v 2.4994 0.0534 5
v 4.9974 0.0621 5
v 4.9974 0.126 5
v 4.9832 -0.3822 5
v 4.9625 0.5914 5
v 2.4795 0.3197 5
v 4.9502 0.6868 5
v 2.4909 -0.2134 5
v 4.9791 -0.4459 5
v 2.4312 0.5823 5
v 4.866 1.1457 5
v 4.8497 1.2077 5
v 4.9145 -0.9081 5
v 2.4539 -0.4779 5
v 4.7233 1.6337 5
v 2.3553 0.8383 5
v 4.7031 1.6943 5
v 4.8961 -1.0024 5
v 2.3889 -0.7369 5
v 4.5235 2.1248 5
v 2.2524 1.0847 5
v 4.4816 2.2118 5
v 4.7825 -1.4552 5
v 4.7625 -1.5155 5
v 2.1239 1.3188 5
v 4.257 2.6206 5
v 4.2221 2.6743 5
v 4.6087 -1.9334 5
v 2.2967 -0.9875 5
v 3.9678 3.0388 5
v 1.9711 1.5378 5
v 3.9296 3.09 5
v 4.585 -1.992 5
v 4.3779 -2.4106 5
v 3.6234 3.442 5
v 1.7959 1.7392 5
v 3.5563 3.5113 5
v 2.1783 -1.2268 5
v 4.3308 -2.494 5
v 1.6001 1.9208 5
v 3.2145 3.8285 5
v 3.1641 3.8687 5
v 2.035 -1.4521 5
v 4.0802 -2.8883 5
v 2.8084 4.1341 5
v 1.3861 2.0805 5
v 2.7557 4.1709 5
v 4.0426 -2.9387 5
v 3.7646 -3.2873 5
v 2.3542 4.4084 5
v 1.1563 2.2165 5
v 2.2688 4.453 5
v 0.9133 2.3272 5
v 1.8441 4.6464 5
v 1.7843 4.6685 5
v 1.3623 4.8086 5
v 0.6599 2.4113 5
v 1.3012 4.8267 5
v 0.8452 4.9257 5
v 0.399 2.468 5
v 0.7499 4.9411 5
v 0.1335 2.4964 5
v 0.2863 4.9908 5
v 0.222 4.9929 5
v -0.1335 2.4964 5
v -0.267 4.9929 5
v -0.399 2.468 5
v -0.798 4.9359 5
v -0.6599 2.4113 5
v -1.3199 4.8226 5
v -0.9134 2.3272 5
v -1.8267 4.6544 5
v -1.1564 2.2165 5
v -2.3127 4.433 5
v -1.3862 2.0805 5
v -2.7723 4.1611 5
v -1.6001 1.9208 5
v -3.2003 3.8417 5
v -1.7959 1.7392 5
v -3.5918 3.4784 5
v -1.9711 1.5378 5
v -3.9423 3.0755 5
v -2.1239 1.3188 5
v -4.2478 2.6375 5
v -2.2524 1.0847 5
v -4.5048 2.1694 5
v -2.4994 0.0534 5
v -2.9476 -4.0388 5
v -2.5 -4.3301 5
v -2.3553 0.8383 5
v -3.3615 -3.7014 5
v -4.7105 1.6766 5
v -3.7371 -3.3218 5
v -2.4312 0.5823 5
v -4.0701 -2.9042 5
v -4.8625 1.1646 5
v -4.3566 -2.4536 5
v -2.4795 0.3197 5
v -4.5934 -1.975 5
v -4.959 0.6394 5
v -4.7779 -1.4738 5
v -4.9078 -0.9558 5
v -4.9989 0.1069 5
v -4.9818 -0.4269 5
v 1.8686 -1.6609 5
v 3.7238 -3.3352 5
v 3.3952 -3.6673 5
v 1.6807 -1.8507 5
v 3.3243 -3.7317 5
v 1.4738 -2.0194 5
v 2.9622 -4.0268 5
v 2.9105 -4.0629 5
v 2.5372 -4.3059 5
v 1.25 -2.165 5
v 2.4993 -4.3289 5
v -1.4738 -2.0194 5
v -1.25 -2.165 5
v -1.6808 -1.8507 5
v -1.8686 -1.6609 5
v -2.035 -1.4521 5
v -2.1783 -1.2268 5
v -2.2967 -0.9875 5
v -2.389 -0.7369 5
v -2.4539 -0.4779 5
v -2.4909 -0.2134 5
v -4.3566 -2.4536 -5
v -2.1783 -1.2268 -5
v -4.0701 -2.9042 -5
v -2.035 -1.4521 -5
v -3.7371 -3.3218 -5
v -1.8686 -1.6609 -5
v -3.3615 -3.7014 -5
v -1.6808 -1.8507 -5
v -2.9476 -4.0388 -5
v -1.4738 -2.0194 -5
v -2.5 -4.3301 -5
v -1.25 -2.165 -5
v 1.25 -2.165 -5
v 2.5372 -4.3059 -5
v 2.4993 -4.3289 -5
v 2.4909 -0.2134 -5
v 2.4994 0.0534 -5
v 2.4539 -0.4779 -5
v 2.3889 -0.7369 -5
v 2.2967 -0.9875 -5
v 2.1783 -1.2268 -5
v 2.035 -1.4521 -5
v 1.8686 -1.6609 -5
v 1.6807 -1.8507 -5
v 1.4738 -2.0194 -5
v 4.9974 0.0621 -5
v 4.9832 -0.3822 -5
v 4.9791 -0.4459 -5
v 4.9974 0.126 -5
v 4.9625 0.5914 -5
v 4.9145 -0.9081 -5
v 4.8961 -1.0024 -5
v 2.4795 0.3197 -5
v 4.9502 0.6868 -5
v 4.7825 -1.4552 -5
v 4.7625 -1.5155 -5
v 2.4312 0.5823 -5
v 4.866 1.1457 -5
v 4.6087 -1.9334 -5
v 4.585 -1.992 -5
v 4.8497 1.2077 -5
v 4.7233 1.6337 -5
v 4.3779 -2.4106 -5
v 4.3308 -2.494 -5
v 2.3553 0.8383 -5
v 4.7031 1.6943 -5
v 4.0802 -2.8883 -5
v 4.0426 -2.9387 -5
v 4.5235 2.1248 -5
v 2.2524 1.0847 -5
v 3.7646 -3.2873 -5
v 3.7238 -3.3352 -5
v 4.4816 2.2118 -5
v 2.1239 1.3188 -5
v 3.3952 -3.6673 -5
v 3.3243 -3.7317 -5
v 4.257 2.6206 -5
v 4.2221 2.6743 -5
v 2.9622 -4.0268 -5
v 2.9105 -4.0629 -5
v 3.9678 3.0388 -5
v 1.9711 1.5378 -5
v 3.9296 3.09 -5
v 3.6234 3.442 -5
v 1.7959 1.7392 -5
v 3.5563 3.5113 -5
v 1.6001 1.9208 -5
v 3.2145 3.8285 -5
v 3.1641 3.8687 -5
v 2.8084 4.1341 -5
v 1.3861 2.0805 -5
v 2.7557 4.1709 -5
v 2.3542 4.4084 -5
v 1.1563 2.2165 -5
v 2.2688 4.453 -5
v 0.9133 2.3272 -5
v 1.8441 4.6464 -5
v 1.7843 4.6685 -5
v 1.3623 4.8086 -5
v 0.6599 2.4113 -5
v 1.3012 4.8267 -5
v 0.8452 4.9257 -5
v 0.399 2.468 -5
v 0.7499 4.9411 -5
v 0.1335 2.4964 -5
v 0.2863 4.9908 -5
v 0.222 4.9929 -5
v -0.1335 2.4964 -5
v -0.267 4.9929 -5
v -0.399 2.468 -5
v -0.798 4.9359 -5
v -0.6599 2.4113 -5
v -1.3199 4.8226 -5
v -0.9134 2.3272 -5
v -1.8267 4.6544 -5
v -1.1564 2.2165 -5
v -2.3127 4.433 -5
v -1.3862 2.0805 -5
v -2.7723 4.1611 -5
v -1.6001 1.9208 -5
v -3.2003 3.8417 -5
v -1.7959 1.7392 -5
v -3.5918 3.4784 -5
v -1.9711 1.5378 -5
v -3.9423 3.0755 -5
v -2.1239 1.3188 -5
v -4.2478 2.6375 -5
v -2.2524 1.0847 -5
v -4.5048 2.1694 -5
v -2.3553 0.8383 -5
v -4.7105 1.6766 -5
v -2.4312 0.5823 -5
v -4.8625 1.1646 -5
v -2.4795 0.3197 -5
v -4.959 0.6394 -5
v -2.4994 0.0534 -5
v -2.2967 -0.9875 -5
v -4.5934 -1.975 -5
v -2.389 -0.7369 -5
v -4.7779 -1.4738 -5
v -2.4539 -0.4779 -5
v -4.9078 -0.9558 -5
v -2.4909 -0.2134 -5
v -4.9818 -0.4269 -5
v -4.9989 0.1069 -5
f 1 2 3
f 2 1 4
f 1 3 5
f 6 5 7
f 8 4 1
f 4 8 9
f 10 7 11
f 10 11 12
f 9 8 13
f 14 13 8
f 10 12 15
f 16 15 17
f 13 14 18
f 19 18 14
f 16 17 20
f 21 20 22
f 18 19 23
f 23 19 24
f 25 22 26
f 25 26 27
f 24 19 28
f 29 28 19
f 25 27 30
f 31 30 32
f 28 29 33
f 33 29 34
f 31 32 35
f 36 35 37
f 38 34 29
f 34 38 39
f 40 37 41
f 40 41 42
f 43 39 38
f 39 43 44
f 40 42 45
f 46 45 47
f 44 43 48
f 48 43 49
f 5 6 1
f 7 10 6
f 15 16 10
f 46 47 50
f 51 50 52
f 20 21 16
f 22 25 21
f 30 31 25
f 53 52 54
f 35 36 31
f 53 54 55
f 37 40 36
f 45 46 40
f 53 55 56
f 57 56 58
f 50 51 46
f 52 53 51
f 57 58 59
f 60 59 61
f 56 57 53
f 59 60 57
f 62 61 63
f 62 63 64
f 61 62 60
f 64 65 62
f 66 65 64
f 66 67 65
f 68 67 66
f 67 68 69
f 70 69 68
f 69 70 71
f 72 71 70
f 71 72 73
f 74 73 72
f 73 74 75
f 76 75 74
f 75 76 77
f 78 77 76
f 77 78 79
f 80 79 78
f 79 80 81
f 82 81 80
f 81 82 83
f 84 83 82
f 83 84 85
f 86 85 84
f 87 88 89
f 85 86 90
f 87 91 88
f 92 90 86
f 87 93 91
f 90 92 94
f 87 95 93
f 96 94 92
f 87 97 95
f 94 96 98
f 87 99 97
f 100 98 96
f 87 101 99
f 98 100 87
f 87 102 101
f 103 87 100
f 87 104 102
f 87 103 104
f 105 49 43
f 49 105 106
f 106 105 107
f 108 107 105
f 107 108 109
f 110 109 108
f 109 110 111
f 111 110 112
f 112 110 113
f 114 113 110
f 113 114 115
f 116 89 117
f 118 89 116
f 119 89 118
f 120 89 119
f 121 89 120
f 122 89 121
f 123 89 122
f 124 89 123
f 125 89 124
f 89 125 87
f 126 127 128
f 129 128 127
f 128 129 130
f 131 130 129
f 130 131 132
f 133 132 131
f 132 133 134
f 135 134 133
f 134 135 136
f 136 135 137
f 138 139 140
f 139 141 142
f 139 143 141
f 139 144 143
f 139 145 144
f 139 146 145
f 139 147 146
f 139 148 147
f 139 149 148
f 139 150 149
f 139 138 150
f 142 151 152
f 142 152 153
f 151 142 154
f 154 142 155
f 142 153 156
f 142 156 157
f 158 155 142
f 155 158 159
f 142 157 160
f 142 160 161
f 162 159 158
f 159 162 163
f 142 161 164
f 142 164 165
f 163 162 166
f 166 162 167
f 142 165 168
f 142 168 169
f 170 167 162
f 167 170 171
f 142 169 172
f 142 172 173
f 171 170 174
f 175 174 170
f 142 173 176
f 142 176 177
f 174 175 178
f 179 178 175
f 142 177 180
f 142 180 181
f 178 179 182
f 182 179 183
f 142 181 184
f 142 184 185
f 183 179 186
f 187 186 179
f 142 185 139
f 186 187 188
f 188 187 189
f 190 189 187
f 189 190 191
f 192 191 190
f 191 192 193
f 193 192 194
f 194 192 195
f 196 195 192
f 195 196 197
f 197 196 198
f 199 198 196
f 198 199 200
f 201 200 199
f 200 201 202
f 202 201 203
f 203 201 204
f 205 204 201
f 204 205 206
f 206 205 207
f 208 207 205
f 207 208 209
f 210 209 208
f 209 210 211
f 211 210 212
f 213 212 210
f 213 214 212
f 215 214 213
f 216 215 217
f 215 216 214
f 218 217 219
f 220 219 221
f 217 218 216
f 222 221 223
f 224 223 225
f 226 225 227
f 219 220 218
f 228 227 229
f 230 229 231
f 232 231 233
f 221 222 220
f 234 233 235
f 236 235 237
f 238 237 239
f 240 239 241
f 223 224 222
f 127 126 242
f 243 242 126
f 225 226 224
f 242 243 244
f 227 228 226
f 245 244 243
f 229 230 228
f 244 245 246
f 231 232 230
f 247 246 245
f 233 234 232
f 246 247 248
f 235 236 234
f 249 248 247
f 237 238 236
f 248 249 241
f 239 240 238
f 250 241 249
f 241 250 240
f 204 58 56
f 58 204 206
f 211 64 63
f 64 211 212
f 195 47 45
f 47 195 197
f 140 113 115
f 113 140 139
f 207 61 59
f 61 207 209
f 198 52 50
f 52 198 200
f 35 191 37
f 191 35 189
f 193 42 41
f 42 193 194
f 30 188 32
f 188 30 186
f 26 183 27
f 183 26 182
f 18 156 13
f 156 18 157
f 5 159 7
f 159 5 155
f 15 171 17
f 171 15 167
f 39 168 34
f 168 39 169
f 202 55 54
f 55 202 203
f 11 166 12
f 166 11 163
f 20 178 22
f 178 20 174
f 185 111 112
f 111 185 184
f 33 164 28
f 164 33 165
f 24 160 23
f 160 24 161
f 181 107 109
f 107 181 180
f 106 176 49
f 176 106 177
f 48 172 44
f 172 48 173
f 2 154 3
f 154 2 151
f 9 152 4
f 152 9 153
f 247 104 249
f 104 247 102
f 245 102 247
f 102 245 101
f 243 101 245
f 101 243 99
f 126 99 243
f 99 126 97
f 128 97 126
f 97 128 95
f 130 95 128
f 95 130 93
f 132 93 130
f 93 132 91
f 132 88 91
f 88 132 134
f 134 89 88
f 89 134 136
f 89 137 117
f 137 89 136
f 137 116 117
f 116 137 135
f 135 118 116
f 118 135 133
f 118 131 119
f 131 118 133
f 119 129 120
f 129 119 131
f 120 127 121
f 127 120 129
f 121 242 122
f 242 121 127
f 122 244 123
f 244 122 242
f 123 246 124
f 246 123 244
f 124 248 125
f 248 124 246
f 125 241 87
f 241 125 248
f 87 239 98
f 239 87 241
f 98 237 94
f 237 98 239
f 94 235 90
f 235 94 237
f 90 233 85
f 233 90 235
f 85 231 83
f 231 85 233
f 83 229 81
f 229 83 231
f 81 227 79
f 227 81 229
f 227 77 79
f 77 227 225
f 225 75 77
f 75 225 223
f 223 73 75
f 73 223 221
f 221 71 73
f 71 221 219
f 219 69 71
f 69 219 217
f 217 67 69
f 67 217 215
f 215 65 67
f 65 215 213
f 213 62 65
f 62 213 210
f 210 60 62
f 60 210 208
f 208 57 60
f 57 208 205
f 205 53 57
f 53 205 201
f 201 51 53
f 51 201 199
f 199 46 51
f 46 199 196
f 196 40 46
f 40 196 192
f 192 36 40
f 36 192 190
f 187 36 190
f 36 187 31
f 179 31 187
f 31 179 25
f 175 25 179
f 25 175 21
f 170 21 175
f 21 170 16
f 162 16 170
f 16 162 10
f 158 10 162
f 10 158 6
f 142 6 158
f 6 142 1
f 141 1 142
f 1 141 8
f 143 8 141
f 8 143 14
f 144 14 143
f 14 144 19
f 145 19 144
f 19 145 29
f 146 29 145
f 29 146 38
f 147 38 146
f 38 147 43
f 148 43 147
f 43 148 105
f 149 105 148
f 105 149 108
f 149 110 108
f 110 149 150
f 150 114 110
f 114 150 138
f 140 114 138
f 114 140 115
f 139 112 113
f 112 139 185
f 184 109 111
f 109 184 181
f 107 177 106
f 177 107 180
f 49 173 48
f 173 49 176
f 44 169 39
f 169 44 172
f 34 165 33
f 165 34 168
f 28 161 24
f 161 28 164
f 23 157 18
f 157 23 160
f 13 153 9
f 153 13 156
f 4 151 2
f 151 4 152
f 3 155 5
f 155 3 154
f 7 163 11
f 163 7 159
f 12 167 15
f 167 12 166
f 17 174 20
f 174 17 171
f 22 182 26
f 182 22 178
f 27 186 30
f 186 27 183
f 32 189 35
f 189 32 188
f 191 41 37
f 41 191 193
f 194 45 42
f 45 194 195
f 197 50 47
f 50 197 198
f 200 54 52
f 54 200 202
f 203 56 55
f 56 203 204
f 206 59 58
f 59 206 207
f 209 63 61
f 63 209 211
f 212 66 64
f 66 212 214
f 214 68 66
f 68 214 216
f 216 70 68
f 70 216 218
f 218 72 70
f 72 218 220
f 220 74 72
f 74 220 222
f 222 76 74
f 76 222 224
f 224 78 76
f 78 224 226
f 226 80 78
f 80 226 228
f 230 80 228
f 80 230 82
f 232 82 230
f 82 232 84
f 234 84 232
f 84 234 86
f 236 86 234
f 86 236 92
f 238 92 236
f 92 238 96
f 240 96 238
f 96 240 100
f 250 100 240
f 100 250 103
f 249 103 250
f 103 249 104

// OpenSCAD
// Generated by SolidPython 1.1.3 on 2025-02-20 04:04:03
$fn=50;


intersection() {
	translate(v = [-5.0000000000, -5.0000000000, -5.0000000000]) {
		linear_extrude(height = 10) {
			polygon(points = [[5.0000000000, 10.0000000000], [5.3203510999, 9.9897269638], [5.6393858084, 9.9589500691], [5.9557931435, 9.9077957850], [6.2682729195, 9.8364743152], [6.5755410901, 9.7452787351], [6.8763350244, 9.6345837867], [7.1694186956, 9.5048443395], [7.4535877600, 9.3565935206], [7.7276745061, 9.1904405245], [7.9905526525, 9.0070681093], [8.2411419765, 8.8072297918], [8.4784127530, 8.5917467505], [8.7013899854, 8.3615044513], [8.9091574123, 8.1174490093], [9.1008612730, 7.8605833006], [9.2757138150, 7.5919628416], [9.4329965319, 7.3126914512], [9.5720631151, 7.0239167156], [9.6923421102, 6.7268252721], [9.7933392652, 6.4226379332], [9.8746395609, 6.1126046698], [9.9359089171, 5.7979994752], [9.9768955647, 5.4801151295], [9.9974310810, 5.1602578879], [9.9974310810, 4.8397421121], [9.9768955647, 4.5198848705], [9.9359089171, 4.2020005248], [9.8746395609, 3.8873953302], [9.7933392652, 3.5773620668], [9.6923421102, 3.2731747279], [9.5720631151, 2.9760832844], [9.4329965319, 2.6873085488], [9.2757138150, 2.4080371584], [9.1008612730, 2.1394166994], [8.9091574123, 1.8825509907], [8.7013899854, 1.6384955487], [8.4784127530, 1.4082532495], [8.2411419765, 1.1927702082], [7.9905526525, 0.9929318907], [7.7276745061, 0.8095594755], [7.4535877600, 0.6434064794], [7.1694186956, 0.4951556605], [6.8763350244, 0.3654162133], [6.5755410901, 0.2547212649], [6.2682729195, 0.1635256848], [5.9557931435, 0.0922042150], [5.6393858084, 0.0410499309], [5.3203510999, 0.0102730362], [5.0000000000, 0.0000000000], [0, 0], [0, 10]]);
		}
	}
	rotate(a = -90, v = [0, 0, 1]) {
		translate(v = [-5.0000000000, -5.0000000000, -5.0000000000]) {
			linear_extrude(height = 10) {
				polygon(points = [[9.3301270189, 7.5000000000], [9.0387948484, 7.9475644476], [8.7013899854, 8.3615044513], [8.3217613875, 8.7370979763], [7.9042396813, 9.0700604263], [7.4535877600, 9.3565935206], [6.9749464512, 9.5934286231], [6.4737758721, 9.7778640289], [5.9557931435, 9.9077957850], [5.4269071715, 9.9817416901], [4.8931512411, 9.9988582039], [4.3606141916, 9.9589500691], [3.8353709579, 9.8624725392], [3.3234132705, 9.7105261849], [2.8305813044, 9.5048443395], [2.3624970575, 9.2477733259], [1.9245002169, 8.9422456905], [1.5215872470, 8.5917467505], [1.1583543913, 8.2002748347], [0.8389452414, 7.7722956725], [0.5670034681, 7.3126914512], [0.3456312568, 6.8267051218], [0.1773539185, 6.3198805903], [0.0640910829, 5.7979994752], [0.0071347997, 5.2670151533], [0.0071347997, 4.7329848467], [0.0640910829, 4.2020005248], [0.1773539185, 3.6801194097], [0.3456312568, 3.1732948782], [0.5670034681, 2.6873085488], [0.8389452414, 2.2277043275], [1.1583543913, 1.7997251653], [1.5215872470, 1.4082532495], [1.9245002169, 1.0577543095], [2.3624970575, 0.7522266741], [2.8305813044, 0.4951556605], [3.3234132705, 0.2894738151], [3.8353709579, 0.1375274608], [4.3606141916, 0.0410499309], [4.8931512411, 0.0011417961], [5.4269071715, 0.0182583099], [5.9557931435, 0.0922042150], [6.4737758721, 0.2221359711], [6.9749464512, 0.4065713769], [7.4535877600, 0.6434064794], [7.9042396813, 0.9299395737], [8.3217613875, 1.2629020237], [8.7013899854, 1.6384955487], [9.0387948484, 2.0524355524], [9.3301270189, 2.5000000000], [7.1650635095, 3.7500000000], [7.0193974242, 3.5262177762], [6.8506949927, 3.3192477743], [6.6608806938, 3.1314510119], [6.4521198406, 2.9649697869], [6.2267938800, 2.8217032397], [5.9874732256, 2.7032856885], [5.7368879360, 2.6110679855], [5.4778965718, 2.5461021075], [5.2134535857, 2.5091291549], [4.9465756205, 2.5005708980], [4.6803070958, 2.5205249654], [4.4176854790, 2.5687637304], [4.1617066352, 2.6447369076], [3.9152906522, 2.7475778302], [3.6812485287, 2.8761133371], [3.4622501085, 3.0288771547], [3.2607936235, 3.2041266248], [3.0791771957, 3.3998625827], [2.9194726207, 3.6138521637], [2.7835017341, 3.8436542744], [2.6728156284, 4.0866474391], [2.5886769593, 4.3400597048], [2.5320455415, 4.6010002624], [2.5035673999, 4.8664924234], [2.5035673999, 5.1335075766], [2.5320455415, 5.3989997376], [2.5886769593, 5.6599402952], [2.6728156284, 5.9133525609], [2.7835017341, 6.1563457256], [2.9194726207, 6.3861478363], [3.0791771957, 6.6001374173], [3.2607936235, 6.7958733752], [3.4622501085, 6.9711228453], [3.6812485287, 7.1238866629], [3.9152906522, 7.2524221698], [4.1617066352, 7.3552630924], [4.4176854790, 7.4312362696], [4.6803070958, 7.4794750346], [4.9465756205, 7.4994291020], [5.2134535857, 7.4908708451], [5.4778965718, 7.4538978925], [5.7368879360, 7.3889320145], [5.9874732256, 7.2967143115], [6.2267938800, 7.1782967603], [6.4521198406, 7.0350302131], [6.6608806938, 6.8685489881], [6.8506949927, 6.6807522257], [7.0193974242, 6.4737822238], [7.1650635095, 6.2500000000]]);
			}
		}
	}
}
/***********************************************
*********      SolidPython code:      **********
************************************************
 
from solid import *
from solid.utils import *

import math
import matplotlib.pyplot as plt
import subprocess
import os

class Hole:
    def __init__(self, x, y, radius):
        """
        Hole defined by:
        :param x: x dimension for center point of the circle as a ratio of letter height
        :param y: y dimension for center point of the circle as a ratio of letter height
        :param radius: radius of circle as a ratio of letter height
        """
        self.x = x
        self.y = y
        self.radius = radius

class Letter3D:
    def __init__(self, name, outer_shape_points, height, holes=None):
        """
        3D Letter defined by:
        :param name: name of letter
        :param outer_shape_points: points defining the outer shape of the letter
        :param heigh: size of cube that letter fits inside
        :param holes: list of Holes
        """
        self.name = name
        self.outer_shape_points = outer_shape_points
        self.holes = holes if holes is None else []
        self.height = height


    def generate(self):
        shape = polygon(points=self.outer_shape_points)

        if self.holes:
            for hole in self.holes:
                circle_hole = circle(r=hole.radius*self.height)
                positioned_hole = translate([hole.x*self.height, hole.y*self.height])(circle_hole)
                shape = difference()(shape, positioned_hole)
        
        shape_3d = linear_extrude(height=self.height)(shape)
        shape_3d = translate([-self.height/2, -self.height/2, -self.height/2])(shape_3d)
        return shape_3d
    
    def render(self):
        scad_render_to_file(self.shape, f"output/{self.name}.scad", file_header='$fn=50;')
        subprocess.run(["C:\\Program Files\\OpenSCAD\\openscad.exe", "-o", f"output\\{self.name}.stl", f"output\\{self.name}.scad"])


class TwoLetter3D:
    def __init__(self, height, letterA, letterA_face, letterB=None, letterB_face=None):
        self.height = height
        self.letterA = letterA
        self.letterB = letterB
        self.letterA_face = letterA_face
        self.letterB_face = letterB_face

    def call_letter_generation(self, letter):
        letter = letter.upper()
        function_name = f"letter_{letter}"
        func = globals().get(function_name)
        if func is None:
            raise ValueError(f"No letter generation function defined for letter '{letter}'.")
        else:
            print(func)
        return func(self.height)
    
    def rotate_object(self, face, shape):
        face = face.lower()
        if face == "z":
            return shape
        if face == "x":
            return rotate(a=90, v=[0,1,0])(shape)
        if face == "y":
            return rotate(a=-90, v=[0,0,1])(shape)
        else:
            raise ValueError("Face must be one of 'x', 'y', or 'z'.")

    def render(self):
        if self.letterA:
            letterA3D = self.call_letter_generation(self.letterA)
            letterA3D = self.rotate_object(self.letterA_face, letterA3D)

        if self.letterB:
            letterB3D = self.call_letter_generation(self.letterB)
            letterB3D = self.rotate_object(self.letterB_face, letterB3D)
            combined = intersection()(letterA3D, letterB3D)
            file_name = self.letterA + self.letterB
            scad_render_to_file(combined, f"output/{file_name}.scad", file_header='$fn=50;')
            subprocess.run(["C:\\Program Files\\OpenSCAD\\openscad.exe", "-o", f"output\\{file_name}.stl", f"output\\{file_name}.scad"])
            return
        else:
            file_name = self.letterA
            scad_render_to_file(letterA3D, f"output/{file_name}.scad", file_header='$fn=50;')
            subprocess.run(["C:\\Program Files\\OpenSCAD\\openscad.exe", "-o", f"output\\{file_name}.stl", f"output\\{file_name}.scad"])
    
                

def arc_points(radius, start_angle, end_angle, center=[0,0], num_points=50):
    angles = [start_angle + i * (end_angle - start_angle) / (num_points - 1)
              for i in range(num_points)]
    points = [
        (center[0] + radius * math.cos(math.radians(angle)),
         center[1] + radius * math.sin(math.radians(angle)))
        for angle in angles
    ]
    return points

def letter_A(h):
    shape_points = [(0,0), (h/2, h), (h, 0), (5/6*h, 0), (2/3*h, 1/3*h), (1/3*h, 1/3*h), (h/6, 0)]
    holes = [Hole(1/2, 7/12, 1/6)]
    A = Letter3D("A", shape_points, h, holes)
    return A.generate()

def letter_B(h):
    top_arc_points = arc_points(h/4, 90, -90, center=[3/4*h, 3/4*h])
    bottom_arc_points = arc_points(h/4, 90, -90, center=[3/4*h, h/4])
    other_points = [(0,0),(0,h)]

    shape_points = top_arc_points + bottom_arc_points + other_points
    holes = [Hole(1/2, 3/4, 1/6), Hole(1/2, 1/4, 1/6)]
    B = Letter3D("B", shape_points, h, holes)
    return B.generate()

def letter_C(h):
    outer_arc_points = arc_points(h/2, 30, 330, center=[h/2,h/2])
    inner_arc_points = arc_points(h/4, 30, 330, center=[h/2,h/2])[::-1]
    shape_points = outer_arc_points + inner_arc_points
    # print(shape_points)
    C = Letter3D("C", shape_points, h)
    return C.generate()


def letter_D(h):
    outer_arc_points = arc_points(h/2, 90, -90, center= [h/2, h/2])
    shape_points = outer_arc_points + [(0,0), (0, h)]
    holes = [Hole(1/2, 1/2, 1/6)]
    D = Letter3D("D", shape_points, h, holes)
    return D.generate()

def letter_E(h):
    points = [(0,0), (h,0), (h,h/5), (h/5,h/5), (h/5,2/5*h), (3/4*h,2/5*h), (3/4*h,3/5*h), (h/5,3/5*h), (h/5,4/5*h), (h,4/5*h), (h,h), (0,h)]
    E = Letter3D("E", points, h)
    return E.generate()

def letter_F(h):
    points = [(0,0), (h/5,0), (h/5,2/5*h), (3/4*h,2/5*h), (3/4*h,3/5*h), (h/5,3/5*h), (h/5,4/5*h), (h,4/5*h), (h,h), (0,h)]
    F = Letter3D("F", points, h)
    return F.generate()

if __name__ == "__main__":
    os.makedirs("output", exist_ok=True)

    letters = [chr(x) for x in range(ord('A'), ord('F') + 1)]
    for letter in letters:
        for other_letter in letters:
            shape = TwoLetter3D(10, letter, "z", other_letter, "y")
            shape.render()
 
 
************************************************/
